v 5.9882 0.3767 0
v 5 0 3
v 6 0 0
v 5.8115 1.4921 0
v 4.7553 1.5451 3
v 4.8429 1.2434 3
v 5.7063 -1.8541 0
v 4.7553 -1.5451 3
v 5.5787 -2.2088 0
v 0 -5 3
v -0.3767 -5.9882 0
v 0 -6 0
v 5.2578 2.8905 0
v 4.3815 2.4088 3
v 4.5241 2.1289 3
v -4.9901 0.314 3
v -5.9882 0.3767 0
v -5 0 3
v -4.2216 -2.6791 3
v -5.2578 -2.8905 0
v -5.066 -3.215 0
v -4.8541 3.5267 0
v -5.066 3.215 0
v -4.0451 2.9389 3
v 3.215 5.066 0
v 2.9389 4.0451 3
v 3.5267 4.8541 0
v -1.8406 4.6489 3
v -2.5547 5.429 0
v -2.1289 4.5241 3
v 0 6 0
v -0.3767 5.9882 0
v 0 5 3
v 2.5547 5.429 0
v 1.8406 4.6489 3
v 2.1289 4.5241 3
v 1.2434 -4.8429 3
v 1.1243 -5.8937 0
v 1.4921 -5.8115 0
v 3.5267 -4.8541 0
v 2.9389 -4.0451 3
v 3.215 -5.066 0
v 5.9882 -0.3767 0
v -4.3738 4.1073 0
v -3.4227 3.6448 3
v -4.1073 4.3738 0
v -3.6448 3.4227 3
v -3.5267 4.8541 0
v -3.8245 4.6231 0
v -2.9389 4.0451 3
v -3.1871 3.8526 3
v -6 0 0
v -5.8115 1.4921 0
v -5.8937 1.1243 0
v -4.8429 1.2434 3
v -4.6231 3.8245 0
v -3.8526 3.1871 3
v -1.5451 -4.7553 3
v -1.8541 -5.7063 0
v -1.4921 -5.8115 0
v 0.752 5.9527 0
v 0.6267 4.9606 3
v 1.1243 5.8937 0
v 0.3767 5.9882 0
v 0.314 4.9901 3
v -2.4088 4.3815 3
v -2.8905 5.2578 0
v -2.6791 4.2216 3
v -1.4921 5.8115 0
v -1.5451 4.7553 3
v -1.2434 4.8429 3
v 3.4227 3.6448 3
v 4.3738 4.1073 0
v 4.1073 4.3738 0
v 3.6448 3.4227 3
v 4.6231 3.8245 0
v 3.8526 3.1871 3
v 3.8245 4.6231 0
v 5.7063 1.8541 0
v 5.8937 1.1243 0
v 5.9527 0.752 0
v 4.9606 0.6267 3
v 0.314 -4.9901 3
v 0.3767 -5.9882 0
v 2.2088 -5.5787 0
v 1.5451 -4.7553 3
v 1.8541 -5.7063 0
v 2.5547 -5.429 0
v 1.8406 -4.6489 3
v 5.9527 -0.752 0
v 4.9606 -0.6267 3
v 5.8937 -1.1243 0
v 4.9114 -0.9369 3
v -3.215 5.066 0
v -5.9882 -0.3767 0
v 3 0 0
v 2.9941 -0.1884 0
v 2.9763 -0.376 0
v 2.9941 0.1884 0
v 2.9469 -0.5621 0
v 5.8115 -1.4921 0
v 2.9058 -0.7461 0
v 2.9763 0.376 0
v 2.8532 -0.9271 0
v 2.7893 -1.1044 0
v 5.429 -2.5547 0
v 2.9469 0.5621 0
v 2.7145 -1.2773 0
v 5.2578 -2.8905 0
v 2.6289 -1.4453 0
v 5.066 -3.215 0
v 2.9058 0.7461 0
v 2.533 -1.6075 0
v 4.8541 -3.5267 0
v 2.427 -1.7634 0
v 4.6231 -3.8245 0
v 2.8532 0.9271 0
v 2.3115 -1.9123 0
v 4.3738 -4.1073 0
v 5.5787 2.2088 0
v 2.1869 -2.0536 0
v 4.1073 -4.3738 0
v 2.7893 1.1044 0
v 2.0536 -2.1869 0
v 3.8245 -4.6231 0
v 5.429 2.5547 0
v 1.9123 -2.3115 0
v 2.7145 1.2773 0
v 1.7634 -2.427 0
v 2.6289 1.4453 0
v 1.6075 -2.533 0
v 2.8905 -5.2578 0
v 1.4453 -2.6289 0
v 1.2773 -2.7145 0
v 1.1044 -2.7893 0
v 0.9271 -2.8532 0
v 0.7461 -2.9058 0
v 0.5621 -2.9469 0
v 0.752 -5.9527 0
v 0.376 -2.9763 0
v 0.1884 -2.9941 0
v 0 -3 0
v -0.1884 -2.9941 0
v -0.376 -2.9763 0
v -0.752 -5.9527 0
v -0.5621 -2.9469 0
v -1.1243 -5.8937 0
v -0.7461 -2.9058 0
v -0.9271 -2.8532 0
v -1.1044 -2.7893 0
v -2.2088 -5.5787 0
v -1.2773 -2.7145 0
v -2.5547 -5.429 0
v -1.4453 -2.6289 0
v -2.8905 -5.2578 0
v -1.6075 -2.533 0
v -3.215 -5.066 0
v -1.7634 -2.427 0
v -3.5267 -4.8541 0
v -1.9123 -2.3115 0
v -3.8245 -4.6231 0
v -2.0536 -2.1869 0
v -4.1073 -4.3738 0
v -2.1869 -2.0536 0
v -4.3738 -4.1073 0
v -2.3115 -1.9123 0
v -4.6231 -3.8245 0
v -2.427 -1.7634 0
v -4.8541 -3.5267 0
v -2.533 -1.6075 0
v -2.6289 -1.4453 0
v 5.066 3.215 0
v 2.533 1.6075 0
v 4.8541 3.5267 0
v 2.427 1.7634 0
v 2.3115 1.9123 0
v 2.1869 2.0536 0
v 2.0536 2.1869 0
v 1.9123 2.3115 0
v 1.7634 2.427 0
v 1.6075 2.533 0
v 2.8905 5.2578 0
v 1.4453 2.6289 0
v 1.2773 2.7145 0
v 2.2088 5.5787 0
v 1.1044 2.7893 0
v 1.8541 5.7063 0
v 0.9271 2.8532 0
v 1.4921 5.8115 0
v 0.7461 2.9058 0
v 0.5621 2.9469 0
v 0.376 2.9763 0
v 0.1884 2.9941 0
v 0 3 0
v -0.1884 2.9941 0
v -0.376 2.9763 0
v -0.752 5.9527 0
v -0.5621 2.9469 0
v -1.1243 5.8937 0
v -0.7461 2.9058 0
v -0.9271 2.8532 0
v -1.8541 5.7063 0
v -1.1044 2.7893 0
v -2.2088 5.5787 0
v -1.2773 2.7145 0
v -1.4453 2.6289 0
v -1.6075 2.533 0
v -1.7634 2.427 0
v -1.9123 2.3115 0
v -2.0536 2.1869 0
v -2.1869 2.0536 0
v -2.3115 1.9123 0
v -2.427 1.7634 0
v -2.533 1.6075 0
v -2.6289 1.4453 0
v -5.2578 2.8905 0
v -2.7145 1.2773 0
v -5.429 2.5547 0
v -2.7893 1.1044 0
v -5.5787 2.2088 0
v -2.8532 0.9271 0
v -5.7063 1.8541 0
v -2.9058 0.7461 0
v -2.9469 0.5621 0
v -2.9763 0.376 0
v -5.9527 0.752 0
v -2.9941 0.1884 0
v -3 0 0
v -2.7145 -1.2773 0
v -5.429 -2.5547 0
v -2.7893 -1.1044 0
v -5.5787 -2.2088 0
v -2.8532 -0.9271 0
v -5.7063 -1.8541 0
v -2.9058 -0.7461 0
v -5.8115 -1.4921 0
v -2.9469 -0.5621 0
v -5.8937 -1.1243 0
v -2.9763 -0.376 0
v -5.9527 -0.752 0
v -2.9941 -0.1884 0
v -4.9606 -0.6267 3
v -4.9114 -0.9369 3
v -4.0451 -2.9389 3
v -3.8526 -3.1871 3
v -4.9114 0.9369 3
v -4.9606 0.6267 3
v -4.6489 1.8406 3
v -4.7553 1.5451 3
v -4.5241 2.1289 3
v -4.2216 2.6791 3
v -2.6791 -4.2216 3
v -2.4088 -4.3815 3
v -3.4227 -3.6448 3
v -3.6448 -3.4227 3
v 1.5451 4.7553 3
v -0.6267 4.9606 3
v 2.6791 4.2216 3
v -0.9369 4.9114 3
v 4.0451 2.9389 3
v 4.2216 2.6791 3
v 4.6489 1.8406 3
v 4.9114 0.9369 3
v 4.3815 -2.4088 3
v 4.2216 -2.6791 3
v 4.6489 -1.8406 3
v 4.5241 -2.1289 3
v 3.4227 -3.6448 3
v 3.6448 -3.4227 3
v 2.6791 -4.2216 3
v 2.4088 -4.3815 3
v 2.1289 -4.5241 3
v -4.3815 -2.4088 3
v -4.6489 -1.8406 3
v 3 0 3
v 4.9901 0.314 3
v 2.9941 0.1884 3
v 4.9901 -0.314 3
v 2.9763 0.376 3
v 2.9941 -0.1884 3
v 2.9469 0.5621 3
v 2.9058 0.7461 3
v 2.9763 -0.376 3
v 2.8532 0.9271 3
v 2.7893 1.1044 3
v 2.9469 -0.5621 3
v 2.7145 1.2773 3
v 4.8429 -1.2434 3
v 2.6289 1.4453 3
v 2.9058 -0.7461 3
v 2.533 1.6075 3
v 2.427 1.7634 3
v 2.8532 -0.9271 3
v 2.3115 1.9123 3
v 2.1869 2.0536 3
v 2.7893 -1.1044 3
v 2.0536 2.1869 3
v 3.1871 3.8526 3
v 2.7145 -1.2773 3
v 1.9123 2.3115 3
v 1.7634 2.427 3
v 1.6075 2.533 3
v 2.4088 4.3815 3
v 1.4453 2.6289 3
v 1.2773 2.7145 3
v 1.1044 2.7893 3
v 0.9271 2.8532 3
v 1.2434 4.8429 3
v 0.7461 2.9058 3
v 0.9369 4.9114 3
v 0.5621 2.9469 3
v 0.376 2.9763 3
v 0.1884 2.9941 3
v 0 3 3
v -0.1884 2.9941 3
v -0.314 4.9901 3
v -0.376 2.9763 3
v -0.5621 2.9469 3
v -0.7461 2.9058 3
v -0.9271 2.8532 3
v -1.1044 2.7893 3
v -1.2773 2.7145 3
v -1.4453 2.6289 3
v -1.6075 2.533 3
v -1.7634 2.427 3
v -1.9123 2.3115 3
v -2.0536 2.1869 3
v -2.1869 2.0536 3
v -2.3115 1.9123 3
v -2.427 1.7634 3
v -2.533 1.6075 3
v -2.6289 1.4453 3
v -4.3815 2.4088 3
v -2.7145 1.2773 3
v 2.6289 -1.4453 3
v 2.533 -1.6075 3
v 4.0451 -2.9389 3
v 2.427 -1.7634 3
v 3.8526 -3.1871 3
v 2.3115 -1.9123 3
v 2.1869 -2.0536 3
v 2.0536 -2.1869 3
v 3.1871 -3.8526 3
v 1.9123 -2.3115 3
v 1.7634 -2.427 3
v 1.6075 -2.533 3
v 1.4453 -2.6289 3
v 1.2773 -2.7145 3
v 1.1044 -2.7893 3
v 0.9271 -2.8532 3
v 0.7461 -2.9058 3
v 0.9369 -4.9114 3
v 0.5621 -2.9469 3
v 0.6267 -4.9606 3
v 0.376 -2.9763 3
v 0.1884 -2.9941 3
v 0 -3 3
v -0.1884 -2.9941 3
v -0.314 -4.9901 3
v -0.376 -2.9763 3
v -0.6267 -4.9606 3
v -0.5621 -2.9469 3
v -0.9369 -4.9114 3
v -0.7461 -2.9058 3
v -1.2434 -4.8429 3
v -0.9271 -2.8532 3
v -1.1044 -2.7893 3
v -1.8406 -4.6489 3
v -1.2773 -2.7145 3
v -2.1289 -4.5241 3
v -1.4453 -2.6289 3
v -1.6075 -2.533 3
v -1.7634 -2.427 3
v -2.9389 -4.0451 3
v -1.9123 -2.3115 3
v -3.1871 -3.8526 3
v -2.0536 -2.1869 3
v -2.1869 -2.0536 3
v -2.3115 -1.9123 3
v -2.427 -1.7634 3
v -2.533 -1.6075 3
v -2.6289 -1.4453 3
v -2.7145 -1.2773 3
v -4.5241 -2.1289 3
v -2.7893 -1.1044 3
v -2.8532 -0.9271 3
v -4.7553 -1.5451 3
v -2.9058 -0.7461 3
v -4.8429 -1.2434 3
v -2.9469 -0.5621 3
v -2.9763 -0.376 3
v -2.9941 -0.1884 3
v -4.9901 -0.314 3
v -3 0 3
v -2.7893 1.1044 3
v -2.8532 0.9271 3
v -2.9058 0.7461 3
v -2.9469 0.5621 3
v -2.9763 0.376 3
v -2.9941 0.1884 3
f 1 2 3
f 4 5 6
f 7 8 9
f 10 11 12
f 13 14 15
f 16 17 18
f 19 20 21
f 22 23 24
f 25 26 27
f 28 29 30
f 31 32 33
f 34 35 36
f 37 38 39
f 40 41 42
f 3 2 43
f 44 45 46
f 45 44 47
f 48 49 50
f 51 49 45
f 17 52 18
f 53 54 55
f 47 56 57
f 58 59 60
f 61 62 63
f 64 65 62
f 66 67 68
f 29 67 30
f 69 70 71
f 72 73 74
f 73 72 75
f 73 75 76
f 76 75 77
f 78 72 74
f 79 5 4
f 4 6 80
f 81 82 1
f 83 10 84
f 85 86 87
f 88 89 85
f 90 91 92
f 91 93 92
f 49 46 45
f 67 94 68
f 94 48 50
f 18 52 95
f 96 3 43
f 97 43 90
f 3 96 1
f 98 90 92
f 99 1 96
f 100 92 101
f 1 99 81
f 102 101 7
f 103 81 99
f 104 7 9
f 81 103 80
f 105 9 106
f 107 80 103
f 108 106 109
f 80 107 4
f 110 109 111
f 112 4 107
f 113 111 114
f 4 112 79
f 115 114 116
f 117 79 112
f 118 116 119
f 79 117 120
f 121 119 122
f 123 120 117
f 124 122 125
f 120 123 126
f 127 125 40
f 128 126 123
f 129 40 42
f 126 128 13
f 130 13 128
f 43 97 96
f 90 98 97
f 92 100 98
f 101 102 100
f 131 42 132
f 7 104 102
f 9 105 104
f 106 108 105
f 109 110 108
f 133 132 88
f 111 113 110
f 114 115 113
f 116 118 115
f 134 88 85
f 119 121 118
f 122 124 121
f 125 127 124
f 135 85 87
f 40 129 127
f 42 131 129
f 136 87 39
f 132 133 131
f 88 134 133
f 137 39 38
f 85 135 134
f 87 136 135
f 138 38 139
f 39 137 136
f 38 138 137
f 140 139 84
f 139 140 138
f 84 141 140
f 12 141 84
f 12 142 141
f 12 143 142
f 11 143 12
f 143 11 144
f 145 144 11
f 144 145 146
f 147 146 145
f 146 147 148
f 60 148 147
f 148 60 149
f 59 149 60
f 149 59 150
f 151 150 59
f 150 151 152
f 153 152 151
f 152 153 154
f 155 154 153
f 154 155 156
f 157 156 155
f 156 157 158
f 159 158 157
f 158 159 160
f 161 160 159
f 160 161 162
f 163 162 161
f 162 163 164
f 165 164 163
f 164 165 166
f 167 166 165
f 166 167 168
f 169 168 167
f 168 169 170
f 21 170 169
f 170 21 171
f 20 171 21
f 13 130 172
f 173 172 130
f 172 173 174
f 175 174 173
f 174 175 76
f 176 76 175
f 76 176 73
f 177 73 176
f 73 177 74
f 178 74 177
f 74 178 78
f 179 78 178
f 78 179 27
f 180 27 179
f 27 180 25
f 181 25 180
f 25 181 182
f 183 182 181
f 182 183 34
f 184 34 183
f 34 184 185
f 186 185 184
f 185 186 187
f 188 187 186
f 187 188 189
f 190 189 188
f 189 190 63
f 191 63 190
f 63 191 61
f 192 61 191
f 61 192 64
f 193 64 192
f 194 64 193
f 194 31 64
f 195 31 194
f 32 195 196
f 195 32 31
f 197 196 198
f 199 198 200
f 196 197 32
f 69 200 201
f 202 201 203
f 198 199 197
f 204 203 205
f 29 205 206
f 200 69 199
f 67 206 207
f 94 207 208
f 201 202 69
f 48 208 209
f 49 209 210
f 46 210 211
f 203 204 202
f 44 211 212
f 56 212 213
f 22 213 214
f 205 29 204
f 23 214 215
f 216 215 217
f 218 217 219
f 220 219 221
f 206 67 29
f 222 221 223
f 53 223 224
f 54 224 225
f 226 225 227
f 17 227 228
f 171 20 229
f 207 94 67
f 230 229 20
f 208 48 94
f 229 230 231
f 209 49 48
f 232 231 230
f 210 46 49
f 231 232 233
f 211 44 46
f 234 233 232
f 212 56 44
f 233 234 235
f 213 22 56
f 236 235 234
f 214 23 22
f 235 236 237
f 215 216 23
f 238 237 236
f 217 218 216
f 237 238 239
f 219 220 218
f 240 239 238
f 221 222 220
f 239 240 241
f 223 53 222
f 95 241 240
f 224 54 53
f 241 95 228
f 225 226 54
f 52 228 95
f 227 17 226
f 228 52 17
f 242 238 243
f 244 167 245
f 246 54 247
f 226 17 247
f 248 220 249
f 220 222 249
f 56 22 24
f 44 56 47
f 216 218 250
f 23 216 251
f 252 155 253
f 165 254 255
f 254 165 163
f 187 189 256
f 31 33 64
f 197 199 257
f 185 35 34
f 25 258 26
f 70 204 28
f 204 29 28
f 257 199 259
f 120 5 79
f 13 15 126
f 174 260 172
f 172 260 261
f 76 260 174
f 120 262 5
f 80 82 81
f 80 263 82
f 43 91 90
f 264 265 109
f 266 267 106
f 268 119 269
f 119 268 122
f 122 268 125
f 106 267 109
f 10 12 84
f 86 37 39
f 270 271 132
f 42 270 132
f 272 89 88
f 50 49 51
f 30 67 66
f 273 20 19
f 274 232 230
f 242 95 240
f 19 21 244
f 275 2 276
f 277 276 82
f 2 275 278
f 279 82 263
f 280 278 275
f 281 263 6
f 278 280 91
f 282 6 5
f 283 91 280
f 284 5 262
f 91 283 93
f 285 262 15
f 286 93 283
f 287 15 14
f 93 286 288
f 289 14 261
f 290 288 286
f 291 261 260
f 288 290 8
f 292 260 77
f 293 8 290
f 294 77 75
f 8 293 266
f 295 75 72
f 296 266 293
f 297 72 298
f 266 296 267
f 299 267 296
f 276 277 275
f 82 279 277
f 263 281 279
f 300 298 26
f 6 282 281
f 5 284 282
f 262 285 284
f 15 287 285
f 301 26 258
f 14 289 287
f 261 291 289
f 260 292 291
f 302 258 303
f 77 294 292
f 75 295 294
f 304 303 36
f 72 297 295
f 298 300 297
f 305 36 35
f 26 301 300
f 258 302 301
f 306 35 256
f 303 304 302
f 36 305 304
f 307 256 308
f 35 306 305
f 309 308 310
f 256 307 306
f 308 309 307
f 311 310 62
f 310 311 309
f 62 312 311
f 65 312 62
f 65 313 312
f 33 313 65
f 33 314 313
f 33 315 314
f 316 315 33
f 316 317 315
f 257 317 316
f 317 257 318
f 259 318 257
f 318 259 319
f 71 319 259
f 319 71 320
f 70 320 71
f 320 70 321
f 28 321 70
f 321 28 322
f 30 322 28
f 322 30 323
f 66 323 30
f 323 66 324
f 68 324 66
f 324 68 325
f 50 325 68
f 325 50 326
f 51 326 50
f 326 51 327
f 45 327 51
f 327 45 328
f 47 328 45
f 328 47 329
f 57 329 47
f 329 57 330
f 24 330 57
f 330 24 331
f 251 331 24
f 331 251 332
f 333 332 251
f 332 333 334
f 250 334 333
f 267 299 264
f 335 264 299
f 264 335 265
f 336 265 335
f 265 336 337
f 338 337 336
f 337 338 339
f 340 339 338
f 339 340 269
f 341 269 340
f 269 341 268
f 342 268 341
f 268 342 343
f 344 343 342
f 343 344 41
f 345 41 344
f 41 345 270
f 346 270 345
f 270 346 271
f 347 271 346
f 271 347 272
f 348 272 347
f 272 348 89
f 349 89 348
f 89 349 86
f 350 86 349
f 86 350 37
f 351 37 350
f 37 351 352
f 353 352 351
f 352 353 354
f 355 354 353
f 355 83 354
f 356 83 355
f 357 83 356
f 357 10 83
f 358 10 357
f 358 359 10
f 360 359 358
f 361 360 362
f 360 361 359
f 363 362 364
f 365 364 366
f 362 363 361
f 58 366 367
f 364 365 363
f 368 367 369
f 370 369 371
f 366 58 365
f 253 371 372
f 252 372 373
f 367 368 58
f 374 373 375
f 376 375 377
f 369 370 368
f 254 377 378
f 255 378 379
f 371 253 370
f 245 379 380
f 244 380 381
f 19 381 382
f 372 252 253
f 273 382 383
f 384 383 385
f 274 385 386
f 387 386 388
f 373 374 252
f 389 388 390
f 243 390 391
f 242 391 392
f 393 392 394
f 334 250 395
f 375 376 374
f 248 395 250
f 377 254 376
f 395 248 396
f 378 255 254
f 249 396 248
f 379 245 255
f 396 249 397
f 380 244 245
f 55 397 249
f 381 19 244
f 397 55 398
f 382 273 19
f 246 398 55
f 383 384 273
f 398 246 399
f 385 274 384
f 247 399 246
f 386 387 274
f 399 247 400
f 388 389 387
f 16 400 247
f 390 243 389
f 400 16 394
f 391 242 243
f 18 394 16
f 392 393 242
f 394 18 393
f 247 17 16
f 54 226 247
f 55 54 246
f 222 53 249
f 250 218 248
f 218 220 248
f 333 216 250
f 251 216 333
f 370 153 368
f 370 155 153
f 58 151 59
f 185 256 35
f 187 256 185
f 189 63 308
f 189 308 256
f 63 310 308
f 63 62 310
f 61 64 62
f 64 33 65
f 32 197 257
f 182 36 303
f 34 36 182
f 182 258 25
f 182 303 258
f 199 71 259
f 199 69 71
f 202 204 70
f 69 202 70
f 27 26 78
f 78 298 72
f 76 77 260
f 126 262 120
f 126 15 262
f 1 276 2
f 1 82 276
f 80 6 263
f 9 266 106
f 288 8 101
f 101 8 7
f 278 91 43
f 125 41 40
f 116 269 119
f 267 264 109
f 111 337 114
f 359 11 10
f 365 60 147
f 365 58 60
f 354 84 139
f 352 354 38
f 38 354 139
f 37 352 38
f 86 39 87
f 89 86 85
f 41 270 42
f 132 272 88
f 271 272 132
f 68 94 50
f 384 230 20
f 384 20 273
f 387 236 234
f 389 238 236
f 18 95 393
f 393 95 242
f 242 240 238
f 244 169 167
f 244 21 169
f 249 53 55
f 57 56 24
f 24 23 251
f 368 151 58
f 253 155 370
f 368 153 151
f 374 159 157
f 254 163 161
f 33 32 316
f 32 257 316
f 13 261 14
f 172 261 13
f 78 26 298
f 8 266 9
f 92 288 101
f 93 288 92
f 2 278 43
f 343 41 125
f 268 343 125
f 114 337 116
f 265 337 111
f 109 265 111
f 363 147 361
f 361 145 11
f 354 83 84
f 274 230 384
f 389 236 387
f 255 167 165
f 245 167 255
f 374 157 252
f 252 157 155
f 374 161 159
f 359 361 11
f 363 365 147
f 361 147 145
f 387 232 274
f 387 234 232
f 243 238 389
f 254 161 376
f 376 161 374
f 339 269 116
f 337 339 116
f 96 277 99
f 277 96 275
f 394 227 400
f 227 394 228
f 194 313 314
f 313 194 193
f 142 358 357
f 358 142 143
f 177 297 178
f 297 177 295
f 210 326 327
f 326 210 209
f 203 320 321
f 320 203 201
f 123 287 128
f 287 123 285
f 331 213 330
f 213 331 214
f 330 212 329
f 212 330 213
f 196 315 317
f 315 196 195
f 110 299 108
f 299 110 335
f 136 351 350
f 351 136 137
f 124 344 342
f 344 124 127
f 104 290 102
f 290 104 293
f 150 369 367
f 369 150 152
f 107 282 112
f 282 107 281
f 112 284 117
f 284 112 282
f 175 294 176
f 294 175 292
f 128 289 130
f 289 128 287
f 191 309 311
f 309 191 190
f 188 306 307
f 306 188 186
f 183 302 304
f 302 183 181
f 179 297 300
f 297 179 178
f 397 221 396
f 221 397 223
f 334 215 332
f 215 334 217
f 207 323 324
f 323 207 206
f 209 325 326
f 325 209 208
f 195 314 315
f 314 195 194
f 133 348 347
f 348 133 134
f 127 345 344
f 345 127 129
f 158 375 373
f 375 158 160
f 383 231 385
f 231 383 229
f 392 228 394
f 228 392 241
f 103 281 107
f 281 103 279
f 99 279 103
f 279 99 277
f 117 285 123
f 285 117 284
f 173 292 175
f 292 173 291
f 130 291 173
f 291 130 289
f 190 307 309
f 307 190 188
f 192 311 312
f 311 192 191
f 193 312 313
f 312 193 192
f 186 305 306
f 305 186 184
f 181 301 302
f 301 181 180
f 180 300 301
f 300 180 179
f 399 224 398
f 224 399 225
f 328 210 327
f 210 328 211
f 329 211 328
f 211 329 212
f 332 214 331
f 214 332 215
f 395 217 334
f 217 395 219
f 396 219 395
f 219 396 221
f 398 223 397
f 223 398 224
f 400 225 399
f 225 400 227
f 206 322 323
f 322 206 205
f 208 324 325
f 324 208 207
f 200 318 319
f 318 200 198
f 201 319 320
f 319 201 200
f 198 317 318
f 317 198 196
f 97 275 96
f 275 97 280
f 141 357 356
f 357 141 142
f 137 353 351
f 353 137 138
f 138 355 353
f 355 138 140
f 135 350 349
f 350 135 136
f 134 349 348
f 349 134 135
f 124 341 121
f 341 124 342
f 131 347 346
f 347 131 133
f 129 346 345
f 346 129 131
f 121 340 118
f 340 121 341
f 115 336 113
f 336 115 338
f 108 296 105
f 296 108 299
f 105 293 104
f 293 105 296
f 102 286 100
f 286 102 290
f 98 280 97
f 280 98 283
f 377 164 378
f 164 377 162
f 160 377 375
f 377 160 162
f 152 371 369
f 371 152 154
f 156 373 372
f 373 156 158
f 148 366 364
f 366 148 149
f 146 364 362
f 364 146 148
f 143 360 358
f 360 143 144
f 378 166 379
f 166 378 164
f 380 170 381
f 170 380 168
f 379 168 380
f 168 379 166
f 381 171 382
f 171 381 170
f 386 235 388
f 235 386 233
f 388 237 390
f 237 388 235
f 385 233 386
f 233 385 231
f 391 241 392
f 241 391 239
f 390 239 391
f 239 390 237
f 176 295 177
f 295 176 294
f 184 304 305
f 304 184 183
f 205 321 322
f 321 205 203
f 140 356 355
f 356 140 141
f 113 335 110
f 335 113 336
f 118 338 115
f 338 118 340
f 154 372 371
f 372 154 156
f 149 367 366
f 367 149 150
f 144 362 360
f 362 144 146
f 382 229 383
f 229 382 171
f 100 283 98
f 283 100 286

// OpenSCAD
/*  
**  Name:  IKEA Lack Filament Port Cap_3d_model
**  Author:  Chris Benson  @TheExtruder
**  Created:  1/22/2017
*/

plugDiameter = 12;
plugChamferDiameter = 10;
plugHeight = 3;
plugOD = 6;

$fn = 100;
difference(){
    cylinder(plugHeight, d1=plugDiameter, d2=plugChamferDiameter, false);
    cylinder(plugHeight, d=plugOD, false);
}
